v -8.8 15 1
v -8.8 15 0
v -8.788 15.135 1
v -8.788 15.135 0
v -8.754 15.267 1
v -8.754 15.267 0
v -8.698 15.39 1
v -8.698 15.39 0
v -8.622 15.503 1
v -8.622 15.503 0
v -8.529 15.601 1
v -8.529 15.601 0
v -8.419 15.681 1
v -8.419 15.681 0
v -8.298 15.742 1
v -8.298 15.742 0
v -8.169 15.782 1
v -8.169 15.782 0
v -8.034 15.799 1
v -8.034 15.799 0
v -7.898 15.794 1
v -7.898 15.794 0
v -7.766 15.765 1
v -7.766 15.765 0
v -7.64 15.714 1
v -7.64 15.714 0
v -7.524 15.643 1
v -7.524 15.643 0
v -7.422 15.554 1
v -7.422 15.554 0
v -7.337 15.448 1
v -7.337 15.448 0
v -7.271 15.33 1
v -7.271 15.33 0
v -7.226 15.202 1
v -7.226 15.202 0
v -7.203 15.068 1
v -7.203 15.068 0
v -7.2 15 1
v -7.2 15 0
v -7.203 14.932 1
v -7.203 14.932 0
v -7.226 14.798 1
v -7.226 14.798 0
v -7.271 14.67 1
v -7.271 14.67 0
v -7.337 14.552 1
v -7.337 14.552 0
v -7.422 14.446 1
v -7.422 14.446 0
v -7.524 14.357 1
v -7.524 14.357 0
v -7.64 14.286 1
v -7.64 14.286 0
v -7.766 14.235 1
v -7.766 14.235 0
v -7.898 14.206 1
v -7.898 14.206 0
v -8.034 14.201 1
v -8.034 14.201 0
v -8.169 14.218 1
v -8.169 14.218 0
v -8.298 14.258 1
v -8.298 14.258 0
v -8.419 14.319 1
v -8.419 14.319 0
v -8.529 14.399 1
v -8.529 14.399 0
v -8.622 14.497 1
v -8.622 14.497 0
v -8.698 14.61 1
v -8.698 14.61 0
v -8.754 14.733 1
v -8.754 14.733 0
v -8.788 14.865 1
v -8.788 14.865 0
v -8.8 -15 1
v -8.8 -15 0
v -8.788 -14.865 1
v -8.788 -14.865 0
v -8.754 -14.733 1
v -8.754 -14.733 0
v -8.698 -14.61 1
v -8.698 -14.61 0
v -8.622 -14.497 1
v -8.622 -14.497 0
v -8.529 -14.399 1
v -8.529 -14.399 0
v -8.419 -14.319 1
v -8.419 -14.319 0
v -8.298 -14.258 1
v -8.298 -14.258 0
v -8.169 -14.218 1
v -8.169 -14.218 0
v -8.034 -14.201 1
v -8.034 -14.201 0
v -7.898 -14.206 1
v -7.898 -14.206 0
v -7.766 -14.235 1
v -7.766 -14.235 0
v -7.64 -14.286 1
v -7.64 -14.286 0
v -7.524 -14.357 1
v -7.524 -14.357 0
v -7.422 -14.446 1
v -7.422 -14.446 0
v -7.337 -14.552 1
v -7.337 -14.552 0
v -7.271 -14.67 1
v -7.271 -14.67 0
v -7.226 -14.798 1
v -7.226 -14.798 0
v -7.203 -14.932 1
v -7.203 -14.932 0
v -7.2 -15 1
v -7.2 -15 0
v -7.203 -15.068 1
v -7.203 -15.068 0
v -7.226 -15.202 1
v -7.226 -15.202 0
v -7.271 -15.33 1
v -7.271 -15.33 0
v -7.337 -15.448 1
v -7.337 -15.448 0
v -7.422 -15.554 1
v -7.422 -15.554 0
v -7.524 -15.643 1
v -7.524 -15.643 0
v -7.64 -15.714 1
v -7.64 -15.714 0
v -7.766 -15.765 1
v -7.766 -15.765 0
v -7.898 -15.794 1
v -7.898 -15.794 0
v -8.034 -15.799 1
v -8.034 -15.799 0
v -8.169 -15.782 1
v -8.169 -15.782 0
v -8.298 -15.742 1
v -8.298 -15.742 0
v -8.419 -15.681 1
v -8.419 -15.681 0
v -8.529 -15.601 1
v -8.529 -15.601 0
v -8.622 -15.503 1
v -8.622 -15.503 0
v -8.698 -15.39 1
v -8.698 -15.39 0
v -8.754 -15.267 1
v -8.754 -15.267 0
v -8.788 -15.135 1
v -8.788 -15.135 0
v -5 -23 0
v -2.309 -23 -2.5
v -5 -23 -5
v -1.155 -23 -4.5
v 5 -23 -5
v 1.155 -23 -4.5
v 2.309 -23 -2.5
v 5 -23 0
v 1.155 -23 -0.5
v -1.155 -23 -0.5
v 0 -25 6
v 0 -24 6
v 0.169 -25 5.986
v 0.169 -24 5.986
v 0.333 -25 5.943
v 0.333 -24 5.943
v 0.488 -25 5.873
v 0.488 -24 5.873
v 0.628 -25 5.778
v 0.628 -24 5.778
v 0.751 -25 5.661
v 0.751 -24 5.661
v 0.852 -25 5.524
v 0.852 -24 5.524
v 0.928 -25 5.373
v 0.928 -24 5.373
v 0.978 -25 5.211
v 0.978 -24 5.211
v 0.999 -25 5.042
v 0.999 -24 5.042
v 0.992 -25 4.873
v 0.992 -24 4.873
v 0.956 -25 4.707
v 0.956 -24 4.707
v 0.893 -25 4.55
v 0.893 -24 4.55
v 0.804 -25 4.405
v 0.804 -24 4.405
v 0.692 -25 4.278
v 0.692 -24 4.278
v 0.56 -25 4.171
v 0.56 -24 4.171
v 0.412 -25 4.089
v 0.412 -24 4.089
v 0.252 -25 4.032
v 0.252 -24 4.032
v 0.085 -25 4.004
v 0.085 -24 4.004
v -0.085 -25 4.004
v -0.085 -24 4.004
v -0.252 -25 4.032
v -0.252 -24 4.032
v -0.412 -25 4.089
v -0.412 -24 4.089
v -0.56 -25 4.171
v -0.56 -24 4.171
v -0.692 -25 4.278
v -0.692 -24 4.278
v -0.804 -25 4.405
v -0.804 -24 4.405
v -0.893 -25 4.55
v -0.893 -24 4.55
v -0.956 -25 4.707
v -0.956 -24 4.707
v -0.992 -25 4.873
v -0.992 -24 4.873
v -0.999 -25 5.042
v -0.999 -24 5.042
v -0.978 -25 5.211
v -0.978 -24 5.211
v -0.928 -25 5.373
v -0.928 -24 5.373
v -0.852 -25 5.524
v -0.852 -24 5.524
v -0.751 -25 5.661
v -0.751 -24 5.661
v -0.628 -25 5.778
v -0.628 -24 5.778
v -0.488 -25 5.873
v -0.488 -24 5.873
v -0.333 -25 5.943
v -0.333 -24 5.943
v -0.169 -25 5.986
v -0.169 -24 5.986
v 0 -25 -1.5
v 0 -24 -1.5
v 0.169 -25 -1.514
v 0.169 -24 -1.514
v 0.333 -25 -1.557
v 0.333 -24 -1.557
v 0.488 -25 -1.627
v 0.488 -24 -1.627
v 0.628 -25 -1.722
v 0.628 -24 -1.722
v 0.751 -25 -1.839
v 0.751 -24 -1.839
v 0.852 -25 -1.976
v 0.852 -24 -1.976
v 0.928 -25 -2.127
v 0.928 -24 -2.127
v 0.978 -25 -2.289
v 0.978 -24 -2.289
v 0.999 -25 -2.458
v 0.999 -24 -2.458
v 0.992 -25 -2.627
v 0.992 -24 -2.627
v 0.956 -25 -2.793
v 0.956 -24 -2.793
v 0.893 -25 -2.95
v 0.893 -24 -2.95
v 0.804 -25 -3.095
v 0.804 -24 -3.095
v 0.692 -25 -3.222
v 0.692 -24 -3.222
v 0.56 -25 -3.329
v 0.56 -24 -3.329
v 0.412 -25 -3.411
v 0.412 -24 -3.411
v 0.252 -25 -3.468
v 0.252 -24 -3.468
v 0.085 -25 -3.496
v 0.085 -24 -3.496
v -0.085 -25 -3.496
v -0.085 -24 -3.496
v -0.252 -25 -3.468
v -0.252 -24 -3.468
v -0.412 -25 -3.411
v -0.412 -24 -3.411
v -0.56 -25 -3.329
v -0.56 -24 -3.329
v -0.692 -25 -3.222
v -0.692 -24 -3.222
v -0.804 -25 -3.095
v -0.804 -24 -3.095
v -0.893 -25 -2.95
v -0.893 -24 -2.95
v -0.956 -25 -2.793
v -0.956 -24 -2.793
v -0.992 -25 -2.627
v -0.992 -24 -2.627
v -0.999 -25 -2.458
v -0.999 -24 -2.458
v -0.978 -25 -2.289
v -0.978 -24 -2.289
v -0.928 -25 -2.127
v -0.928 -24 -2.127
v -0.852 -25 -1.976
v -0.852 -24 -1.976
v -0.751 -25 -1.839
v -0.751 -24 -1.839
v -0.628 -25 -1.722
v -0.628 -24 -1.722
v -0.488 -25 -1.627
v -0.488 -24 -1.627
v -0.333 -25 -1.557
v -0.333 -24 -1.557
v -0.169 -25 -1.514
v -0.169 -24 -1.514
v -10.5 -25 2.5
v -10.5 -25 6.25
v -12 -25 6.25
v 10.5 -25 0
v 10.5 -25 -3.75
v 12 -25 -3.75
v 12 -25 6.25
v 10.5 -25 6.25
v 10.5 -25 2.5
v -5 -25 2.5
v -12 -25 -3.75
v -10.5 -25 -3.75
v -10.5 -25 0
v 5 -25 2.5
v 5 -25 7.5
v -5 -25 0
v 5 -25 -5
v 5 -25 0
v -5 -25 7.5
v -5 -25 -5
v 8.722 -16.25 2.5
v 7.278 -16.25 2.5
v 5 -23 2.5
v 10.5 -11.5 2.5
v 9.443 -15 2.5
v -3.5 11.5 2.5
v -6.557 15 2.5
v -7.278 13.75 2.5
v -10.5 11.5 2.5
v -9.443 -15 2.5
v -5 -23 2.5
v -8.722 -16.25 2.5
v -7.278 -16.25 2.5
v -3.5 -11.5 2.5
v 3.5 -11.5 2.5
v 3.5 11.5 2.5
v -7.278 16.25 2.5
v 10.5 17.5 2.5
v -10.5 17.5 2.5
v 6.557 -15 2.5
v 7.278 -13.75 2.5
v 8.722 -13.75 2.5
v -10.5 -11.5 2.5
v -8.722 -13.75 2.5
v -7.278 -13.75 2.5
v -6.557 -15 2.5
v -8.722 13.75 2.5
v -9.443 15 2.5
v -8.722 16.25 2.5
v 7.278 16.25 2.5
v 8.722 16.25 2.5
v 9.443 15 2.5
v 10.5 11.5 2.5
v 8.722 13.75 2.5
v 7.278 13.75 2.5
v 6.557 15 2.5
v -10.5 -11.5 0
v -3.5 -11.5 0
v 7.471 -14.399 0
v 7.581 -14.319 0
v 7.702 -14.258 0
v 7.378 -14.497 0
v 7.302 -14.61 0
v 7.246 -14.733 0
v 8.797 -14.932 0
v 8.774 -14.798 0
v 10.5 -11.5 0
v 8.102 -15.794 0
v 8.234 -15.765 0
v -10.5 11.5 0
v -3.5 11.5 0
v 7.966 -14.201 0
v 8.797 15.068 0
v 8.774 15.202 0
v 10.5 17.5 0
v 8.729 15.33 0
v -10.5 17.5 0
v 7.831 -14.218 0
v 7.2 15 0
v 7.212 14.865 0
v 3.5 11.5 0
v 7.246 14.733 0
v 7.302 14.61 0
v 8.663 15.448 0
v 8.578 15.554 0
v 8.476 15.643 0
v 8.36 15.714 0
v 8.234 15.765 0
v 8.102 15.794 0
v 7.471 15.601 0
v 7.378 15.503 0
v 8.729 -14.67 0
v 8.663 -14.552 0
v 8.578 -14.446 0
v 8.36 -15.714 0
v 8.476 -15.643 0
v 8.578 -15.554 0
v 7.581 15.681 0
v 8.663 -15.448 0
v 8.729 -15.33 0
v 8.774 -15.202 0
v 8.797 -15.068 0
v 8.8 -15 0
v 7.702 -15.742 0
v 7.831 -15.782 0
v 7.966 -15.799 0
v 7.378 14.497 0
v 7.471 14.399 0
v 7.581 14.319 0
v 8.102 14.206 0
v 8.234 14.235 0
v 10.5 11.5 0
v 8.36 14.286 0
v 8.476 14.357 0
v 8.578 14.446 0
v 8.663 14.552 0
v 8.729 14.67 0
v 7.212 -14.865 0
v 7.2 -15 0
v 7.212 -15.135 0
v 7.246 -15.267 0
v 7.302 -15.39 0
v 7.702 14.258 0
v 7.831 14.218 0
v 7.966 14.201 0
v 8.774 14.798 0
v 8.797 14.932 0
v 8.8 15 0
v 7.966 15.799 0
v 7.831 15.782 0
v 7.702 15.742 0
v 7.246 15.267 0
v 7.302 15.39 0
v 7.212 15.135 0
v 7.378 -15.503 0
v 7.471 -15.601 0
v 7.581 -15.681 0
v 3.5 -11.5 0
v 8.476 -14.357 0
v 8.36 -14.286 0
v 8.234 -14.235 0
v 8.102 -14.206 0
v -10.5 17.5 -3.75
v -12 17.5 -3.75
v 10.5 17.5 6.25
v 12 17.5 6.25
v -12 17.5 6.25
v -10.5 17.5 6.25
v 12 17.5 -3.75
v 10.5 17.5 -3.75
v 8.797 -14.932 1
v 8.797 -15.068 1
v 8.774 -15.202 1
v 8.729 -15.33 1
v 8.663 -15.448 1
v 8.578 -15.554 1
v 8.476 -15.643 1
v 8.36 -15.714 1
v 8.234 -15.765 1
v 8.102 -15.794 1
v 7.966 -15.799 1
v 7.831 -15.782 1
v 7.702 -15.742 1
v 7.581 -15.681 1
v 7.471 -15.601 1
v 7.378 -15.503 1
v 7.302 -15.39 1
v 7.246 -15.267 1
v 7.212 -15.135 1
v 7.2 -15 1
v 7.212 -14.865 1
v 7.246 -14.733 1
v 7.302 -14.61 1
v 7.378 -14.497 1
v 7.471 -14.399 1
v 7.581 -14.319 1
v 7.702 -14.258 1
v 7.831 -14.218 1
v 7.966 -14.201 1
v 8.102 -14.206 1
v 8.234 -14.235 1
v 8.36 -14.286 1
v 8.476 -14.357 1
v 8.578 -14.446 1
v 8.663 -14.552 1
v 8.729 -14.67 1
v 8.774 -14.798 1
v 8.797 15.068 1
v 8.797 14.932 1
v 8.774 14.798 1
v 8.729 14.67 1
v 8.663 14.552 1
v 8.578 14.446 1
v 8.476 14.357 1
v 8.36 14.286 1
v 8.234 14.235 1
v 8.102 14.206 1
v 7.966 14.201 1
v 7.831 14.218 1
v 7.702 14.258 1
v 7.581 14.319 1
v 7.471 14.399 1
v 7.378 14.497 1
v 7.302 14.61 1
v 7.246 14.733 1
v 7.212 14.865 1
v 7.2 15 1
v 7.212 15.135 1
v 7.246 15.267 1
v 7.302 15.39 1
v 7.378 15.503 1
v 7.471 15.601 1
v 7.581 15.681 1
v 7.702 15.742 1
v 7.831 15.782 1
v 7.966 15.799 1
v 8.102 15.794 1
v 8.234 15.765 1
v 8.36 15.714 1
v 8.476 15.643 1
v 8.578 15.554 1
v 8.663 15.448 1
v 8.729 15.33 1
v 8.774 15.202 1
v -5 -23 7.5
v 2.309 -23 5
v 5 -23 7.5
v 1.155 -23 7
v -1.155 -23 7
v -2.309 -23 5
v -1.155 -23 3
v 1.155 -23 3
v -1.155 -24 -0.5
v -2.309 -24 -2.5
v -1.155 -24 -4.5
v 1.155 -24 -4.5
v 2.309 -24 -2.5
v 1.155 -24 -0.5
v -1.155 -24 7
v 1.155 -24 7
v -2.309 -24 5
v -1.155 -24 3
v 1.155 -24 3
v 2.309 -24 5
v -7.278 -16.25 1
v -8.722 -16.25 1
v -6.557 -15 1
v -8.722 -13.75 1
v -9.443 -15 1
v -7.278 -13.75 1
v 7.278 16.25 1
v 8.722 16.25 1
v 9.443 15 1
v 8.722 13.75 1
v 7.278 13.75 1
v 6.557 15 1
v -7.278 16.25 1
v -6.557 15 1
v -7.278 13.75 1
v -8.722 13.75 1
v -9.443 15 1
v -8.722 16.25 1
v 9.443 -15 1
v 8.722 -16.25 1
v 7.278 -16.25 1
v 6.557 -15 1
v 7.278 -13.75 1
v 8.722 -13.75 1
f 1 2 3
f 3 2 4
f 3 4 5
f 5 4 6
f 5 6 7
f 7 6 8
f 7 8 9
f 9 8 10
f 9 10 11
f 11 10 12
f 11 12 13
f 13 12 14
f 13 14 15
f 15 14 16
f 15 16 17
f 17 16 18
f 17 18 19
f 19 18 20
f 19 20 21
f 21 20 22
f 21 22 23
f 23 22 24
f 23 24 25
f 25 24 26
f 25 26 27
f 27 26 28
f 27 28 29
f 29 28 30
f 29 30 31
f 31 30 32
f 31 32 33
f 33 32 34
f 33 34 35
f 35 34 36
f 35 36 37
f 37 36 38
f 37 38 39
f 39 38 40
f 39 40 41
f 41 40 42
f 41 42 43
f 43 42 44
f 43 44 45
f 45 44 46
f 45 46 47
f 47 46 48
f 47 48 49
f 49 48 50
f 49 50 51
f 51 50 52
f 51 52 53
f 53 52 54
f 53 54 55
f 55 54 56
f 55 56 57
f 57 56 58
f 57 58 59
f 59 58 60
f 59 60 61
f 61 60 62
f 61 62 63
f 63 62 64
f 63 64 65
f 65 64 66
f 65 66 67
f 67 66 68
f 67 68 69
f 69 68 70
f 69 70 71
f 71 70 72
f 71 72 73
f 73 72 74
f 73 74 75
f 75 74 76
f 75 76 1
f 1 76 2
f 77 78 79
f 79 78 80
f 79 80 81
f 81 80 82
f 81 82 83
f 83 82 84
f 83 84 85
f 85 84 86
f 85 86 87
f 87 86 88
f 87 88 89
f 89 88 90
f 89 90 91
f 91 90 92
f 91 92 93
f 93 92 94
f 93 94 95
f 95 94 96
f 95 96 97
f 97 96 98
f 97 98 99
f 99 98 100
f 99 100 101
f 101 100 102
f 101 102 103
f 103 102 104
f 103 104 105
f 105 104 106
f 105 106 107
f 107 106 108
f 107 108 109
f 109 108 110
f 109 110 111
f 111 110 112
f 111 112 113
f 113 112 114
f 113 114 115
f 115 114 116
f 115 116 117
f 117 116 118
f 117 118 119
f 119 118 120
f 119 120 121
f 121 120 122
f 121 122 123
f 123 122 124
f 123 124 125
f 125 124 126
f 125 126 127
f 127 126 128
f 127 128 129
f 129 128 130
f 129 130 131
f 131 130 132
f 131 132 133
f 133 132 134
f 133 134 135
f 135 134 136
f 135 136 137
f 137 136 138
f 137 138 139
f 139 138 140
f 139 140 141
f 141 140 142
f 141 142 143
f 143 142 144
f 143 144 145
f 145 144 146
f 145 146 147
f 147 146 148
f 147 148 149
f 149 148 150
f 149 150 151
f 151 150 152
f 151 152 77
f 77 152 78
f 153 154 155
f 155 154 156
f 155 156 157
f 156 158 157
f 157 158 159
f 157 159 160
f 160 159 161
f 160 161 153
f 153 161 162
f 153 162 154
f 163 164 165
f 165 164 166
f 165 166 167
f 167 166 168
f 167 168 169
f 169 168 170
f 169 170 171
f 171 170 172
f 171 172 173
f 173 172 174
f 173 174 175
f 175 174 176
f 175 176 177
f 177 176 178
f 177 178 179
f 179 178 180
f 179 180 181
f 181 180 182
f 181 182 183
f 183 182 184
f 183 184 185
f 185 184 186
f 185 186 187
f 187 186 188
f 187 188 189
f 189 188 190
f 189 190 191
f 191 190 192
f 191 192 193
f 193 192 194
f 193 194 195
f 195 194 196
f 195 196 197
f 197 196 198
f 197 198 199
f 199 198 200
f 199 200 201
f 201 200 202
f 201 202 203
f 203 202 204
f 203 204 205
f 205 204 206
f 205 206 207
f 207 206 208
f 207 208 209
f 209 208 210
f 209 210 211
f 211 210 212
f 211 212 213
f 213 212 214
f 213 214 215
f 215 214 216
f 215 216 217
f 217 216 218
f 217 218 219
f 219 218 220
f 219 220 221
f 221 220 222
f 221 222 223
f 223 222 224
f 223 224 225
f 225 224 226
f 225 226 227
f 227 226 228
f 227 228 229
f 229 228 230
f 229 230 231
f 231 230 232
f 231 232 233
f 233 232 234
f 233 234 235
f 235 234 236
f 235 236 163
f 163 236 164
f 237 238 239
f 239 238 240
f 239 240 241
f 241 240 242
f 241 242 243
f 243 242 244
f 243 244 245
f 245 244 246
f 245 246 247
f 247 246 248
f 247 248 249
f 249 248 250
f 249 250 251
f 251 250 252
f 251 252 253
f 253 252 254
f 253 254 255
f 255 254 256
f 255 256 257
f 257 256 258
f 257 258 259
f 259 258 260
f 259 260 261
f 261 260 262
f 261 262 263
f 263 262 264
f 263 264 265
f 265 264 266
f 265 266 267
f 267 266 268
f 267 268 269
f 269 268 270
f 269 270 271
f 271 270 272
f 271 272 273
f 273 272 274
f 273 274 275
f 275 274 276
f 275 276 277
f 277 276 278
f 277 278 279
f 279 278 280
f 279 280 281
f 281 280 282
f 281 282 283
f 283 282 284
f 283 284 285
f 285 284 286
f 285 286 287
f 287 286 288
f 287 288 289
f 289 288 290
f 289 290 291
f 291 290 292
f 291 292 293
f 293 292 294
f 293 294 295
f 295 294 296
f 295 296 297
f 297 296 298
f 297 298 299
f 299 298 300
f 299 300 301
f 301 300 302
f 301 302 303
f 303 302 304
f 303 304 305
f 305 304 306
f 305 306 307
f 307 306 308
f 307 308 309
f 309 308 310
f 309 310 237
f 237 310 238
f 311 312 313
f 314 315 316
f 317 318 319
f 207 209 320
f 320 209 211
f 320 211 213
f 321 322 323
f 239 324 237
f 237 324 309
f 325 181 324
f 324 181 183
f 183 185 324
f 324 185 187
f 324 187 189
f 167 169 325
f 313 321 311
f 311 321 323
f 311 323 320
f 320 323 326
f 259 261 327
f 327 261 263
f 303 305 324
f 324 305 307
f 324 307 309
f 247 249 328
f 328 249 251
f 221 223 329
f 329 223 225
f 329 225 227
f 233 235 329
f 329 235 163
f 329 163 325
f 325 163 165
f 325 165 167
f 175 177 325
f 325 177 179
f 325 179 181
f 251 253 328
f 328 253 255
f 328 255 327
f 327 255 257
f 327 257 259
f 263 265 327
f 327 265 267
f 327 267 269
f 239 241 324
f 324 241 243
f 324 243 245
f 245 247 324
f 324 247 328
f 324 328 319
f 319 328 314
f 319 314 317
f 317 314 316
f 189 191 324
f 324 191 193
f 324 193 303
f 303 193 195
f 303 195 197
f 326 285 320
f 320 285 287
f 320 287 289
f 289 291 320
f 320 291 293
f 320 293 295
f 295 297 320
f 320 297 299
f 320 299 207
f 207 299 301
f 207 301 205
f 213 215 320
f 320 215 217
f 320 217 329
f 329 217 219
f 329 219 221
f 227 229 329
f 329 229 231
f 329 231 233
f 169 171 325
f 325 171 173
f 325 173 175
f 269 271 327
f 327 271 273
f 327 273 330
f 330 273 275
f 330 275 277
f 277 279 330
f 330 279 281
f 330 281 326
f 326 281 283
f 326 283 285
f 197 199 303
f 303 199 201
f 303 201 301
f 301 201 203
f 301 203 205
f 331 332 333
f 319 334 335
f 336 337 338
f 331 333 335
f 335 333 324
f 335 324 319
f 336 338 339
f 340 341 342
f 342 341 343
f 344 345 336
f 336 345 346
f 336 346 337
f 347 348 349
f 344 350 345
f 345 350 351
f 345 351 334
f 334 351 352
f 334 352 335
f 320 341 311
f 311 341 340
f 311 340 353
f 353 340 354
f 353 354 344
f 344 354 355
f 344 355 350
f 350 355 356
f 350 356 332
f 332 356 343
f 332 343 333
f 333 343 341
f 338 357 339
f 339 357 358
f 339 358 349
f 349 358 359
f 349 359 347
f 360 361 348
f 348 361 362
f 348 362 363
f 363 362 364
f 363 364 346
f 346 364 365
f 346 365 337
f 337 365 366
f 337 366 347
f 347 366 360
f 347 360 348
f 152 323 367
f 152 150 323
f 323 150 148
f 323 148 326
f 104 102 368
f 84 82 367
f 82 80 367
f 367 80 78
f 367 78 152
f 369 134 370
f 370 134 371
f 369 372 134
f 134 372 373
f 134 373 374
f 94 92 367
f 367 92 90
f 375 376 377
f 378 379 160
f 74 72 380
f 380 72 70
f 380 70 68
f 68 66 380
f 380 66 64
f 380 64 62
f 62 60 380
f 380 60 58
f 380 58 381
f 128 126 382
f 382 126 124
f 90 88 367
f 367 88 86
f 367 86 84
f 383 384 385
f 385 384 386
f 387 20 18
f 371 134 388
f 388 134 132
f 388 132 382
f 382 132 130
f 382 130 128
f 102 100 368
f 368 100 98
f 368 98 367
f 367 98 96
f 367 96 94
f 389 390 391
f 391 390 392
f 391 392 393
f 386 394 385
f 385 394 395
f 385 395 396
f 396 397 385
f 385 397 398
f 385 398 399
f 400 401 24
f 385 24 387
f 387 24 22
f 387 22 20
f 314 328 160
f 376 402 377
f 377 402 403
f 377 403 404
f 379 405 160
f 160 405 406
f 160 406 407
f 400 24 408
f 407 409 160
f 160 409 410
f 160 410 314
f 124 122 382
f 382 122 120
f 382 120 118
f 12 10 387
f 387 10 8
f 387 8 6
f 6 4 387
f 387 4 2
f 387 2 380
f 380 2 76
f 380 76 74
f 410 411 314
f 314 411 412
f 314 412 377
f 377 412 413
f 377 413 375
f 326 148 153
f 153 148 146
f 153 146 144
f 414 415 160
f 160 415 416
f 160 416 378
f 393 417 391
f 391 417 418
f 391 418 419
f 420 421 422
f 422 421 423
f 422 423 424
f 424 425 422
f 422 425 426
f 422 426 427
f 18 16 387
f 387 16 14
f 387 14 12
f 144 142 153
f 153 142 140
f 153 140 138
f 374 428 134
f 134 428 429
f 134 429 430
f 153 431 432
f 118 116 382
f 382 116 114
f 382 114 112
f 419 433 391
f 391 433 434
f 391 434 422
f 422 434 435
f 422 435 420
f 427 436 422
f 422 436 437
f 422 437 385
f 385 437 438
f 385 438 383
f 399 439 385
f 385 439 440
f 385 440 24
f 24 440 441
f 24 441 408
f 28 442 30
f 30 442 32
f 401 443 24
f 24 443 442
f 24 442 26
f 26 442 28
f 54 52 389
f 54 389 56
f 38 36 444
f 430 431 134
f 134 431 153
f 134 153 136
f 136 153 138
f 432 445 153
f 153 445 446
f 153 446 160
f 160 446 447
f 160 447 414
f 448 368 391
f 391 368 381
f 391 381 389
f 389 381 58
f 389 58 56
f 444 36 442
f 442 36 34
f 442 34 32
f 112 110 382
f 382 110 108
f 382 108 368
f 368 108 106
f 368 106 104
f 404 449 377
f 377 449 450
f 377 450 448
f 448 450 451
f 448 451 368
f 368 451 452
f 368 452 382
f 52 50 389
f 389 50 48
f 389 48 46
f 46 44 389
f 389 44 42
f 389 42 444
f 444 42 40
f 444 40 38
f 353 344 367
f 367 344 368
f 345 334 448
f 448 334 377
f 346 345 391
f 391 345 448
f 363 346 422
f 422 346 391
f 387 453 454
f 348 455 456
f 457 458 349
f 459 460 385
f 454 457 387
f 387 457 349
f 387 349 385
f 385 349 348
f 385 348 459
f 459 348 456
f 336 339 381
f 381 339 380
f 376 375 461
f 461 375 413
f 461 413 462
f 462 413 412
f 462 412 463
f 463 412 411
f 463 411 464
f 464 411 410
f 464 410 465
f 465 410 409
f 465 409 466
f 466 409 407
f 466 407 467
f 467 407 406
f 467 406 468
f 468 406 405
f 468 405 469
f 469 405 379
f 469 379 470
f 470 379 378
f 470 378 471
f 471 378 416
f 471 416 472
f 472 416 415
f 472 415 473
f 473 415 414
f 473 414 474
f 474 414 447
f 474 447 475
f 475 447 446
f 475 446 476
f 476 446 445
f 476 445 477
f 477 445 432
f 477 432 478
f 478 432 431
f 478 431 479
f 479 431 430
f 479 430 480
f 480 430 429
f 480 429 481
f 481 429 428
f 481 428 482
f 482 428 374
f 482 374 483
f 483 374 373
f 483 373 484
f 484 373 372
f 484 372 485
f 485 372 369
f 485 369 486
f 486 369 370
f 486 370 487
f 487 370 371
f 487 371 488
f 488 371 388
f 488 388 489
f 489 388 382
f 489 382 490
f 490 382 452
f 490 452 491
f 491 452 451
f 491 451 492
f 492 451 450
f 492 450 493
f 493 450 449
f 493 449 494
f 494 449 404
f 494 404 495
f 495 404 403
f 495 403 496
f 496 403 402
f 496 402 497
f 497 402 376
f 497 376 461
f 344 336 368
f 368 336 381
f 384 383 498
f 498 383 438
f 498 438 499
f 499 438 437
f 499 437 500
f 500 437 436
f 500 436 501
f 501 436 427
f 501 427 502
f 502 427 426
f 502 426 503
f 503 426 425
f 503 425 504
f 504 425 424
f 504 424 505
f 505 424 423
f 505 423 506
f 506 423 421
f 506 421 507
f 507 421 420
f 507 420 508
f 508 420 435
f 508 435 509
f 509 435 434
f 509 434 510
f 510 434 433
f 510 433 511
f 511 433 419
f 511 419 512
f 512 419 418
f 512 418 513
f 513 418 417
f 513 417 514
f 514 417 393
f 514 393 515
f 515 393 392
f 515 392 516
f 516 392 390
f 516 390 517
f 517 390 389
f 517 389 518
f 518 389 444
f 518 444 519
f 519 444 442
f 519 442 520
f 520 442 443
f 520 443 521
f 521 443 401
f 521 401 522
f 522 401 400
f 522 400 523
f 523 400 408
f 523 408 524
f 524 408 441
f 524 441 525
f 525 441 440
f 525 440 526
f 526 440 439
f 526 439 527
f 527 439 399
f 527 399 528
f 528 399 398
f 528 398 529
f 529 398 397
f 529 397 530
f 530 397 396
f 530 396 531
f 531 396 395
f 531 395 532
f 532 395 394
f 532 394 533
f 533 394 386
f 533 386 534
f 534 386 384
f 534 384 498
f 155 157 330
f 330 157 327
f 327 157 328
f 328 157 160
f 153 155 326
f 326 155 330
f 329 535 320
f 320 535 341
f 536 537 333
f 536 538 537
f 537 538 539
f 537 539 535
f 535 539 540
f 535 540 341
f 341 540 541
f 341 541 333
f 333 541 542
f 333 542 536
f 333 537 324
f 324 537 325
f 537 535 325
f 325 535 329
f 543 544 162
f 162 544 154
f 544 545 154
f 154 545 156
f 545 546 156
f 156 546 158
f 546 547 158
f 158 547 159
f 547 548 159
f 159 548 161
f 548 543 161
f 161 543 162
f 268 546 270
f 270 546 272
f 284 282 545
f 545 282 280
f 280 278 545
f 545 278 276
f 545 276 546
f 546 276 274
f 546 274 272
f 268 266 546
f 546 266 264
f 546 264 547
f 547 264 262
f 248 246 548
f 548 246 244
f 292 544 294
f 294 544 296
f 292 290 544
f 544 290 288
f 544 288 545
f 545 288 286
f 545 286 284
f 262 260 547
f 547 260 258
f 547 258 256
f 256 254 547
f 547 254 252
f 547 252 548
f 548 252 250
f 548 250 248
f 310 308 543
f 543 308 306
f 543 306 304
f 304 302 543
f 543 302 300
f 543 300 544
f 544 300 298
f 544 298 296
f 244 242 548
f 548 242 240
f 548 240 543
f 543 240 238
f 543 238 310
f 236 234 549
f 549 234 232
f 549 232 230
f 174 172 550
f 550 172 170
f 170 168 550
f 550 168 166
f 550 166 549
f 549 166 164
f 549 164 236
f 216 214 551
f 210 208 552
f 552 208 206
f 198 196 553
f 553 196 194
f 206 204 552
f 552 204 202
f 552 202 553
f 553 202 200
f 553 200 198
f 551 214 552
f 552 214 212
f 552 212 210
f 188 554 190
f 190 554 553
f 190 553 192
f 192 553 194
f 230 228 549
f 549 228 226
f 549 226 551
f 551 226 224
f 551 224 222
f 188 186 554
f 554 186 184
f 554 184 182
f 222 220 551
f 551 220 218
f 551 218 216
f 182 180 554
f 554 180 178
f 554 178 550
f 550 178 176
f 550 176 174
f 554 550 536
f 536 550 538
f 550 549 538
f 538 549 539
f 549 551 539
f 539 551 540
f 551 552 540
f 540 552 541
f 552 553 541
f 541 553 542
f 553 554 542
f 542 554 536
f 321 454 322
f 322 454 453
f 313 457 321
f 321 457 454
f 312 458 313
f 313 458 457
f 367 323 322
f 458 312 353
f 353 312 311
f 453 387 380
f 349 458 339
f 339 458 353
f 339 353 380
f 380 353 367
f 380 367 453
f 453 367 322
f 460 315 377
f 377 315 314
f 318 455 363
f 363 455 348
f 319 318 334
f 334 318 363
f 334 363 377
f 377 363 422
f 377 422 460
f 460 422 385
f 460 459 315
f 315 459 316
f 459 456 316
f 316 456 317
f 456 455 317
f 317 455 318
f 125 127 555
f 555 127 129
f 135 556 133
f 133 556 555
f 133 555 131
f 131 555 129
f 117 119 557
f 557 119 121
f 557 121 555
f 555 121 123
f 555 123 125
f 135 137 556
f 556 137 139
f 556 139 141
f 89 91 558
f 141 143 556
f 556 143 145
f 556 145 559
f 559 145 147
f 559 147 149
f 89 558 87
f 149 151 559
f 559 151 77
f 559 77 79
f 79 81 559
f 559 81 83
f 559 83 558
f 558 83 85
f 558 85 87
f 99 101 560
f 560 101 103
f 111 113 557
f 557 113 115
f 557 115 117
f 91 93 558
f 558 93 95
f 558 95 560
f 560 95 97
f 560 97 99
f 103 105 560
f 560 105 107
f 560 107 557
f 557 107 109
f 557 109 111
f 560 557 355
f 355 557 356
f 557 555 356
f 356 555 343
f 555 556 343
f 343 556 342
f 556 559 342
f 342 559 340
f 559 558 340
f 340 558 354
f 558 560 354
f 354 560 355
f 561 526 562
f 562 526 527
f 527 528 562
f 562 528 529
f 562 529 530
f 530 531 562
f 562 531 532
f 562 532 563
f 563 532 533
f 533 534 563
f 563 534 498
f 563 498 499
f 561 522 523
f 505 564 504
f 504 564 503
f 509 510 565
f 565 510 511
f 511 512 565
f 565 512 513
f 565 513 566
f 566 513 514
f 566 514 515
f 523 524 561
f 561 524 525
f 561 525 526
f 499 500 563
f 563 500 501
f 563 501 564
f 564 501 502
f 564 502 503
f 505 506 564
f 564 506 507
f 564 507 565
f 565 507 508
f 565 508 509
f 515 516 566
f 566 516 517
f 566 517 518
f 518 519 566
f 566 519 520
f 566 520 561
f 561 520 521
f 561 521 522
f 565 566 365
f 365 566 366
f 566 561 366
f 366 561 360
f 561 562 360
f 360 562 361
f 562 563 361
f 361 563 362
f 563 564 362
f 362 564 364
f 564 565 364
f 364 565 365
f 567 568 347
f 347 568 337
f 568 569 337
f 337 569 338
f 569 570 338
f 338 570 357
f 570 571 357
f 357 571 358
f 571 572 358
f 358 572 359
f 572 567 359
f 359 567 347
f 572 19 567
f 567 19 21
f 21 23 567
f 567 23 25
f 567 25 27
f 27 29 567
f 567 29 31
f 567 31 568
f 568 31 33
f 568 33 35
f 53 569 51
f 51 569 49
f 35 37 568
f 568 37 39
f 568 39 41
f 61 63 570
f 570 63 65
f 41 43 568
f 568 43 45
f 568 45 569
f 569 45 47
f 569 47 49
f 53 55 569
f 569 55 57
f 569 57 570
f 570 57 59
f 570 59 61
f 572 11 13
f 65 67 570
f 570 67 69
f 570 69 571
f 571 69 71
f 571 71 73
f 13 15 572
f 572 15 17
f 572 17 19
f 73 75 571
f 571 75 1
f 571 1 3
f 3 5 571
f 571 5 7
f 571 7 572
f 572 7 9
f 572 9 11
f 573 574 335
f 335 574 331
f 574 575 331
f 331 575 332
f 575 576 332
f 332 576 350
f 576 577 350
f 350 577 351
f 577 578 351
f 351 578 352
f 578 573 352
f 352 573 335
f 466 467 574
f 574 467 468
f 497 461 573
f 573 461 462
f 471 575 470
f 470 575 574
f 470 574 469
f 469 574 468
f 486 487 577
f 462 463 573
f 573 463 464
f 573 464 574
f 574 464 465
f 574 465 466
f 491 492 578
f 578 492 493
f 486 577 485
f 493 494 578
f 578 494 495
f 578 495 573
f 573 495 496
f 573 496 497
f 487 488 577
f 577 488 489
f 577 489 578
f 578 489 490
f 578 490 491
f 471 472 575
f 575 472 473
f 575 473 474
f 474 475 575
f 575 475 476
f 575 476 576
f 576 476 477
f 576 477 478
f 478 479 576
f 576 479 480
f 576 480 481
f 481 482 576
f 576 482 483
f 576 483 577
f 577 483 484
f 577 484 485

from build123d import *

# Parameters (mm, degrees)
SKETCH1_R                  = 0.8
BRACKETWITHBOLTHOLES_DEPTH = 2.5
SKETCH2_W                  = 10
SKETCH2_H                  = 2
BRACKETEXTENSION_DEPTH     = 2.5
SKETCH2_3_W                = 10
SKETCH2_3_H                = 2
BASE_DEPTH                 = 5
BASE_DEPTH_BACK            = 7.5
SKETCH3_R                  = 1
BASEBOLTHOLES_DEPTH        = 3
SKETCH3_3_R                = 1
BASENUTSLOTS_DEPTH         = 1
SKETCH4_W                  = 1.5
SKETCH4_H                  = 10
STIFFENERRIB_DEPTH         = 42.5
BRACKETNUTSLOTS_DEPTH      = 1.5


with BuildPart() as part:
    # Sketch1 → BracketWithBoltHoles (new body)
    with BuildSketch(Plane.XY):
        Polygon((-10.5, 17.5), (-10.5, 11.5), (-3.5, 11.5), (-3.5, -11.5), (-10.5, -11.5), (-10.5, -17.5), (10.5, -17.5), (10.5, -11.5), (3.5, -11.5), (3.5, 11.5), (10.5, 11.5), (10.5, 17.5), align=None)
        with Locations((-8, -15)):
            Circle(SKETCH1_R, mode=Mode.SUBTRACT)
        with Locations((8, -15)):
            Circle(SKETCH1_R, mode=Mode.SUBTRACT)
        with Locations((-8, 15)):
            Circle(SKETCH1_R, mode=Mode.SUBTRACT)
        with Locations((8, 15)):
            Circle(SKETCH1_R, mode=Mode.SUBTRACT)
    extrude(amount=BRACKETWITHBOLTHOLES_DEPTH)

    # Sketch2 → BracketExtension (add)
    with BuildSketch(Plane.XY.offset(2.5)):
        Polygon((10.5, -17.5), (-10.5, -17.5), (-10.5, -25), (-5, -25), (-5, -23), (5, -23), (5, -25), (10.5, -25), align=None)
        with Locations((0, -24)):
            Rectangle(SKETCH2_W, SKETCH2_H)
    extrude(amount=-BRACKETEXTENSION_DEPTH)

    # Sketch2<3> → Base (add, two sides)
    with BuildSketch(Plane.XY.offset(2.5)) as base_sk:
        with Locations((0, -24)):
            Rectangle(SKETCH2_3_W, SKETCH2_3_H)
    extrude(amount=BASE_DEPTH)
    extrude(base_sk.sketch, amount=-BASE_DEPTH_BACK)

    # Sketch3 → BaseBoltHoles (cut, through all)
    with BuildSketch(Plane(origin=(0, -23, 0), x_dir=(1, 0, 0), z_dir=(0, 1, 0))):
        with Locations((0, -5)):
            Circle(SKETCH3_R)
        with Locations((0, 2.5)):
            Circle(SKETCH3_R)
    extrude(amount=-BASEBOLTHOLES_DEPTH, mode=Mode.SUBTRACT)

    # Sketch3<3> → BaseNutSlots (cut)
    with BuildSketch(Plane(origin=(0, -23, 0), x_dir=(1, 0, 0), z_dir=(0, 1, 0))):
        Polygon((1.154700538, -7), (2.309401077, -5), (1.154700538, -3), (-1.154700538, -3), (-2.309401077, -5), (-1.154700538, -7), align=None)
        with Locations((0, -5)):
            Circle(SKETCH3_3_R, mode=Mode.SUBTRACT)
        Polygon((-1.154700538, 0.5), (-2.309401077, 2.5), (-1.154700538, 4.5), (1.154700538, 4.5), (2.309401077, 2.5), (1.154700538, 0.5), align=None)
        with Locations((0, 2.5)):
            Circle(SKETCH3_3_R, mode=Mode.SUBTRACT)
    extrude(amount=-BASENUTSLOTS_DEPTH, mode=Mode.SUBTRACT)

    # Sketch4 → StiffenerRib (add)
    with BuildSketch(Plane(origin=(0, 17.5, 0), x_dir=(1, 0, 0), z_dir=(0, 1, 0))):
        with Locations((-11.25, -1.25)):
            Rectangle(SKETCH4_W, SKETCH4_H)
    stiffenerrib = extrude(amount=-STIFFENERRIB_DEPTH)

    # StiffenerRib2: StiffenerRib across plane
    add(stiffenerrib.mirror(Plane(origin=(0, 0, 0), x_dir=(0, 0, 1), z_dir=(1, 0, 0))))

    # Sketch5 → BracketNutSlots (cut)
    with BuildSketch(Plane.XY.offset(2.5)):
        Polygon((-7.278312164, 16.25), (-8.721687836, 16.25), (-9.443375673, 15), (-8.721687836, 13.75), (-7.278312164, 13.75), (-6.556624327, 15), align=None)
        Polygon((-7.278312164, -13.75), (-8.721687836, -13.75), (-9.443375673, -15), (-8.721687836, -16.25), (-7.278312164, -16.25), (-6.556624327, -15), align=None)
        Polygon((8.721687836, -16.25), (7.278312164, -16.25), (6.556624327, -15), (7.278312164, -13.75), (8.721687836, -13.75), (9.443375673, -15), align=None)
        Polygon((6.556624327, 15), (7.278312164, 16.25), (8.721687836, 16.25), (9.443375673, 15), (8.721687836, 13.75), (7.278312164, 13.75), align=None)
    extrude(amount=-BRACKETNUTSLOTS_DEPTH, mode=Mode.SUBTRACT)


solid = part.part
